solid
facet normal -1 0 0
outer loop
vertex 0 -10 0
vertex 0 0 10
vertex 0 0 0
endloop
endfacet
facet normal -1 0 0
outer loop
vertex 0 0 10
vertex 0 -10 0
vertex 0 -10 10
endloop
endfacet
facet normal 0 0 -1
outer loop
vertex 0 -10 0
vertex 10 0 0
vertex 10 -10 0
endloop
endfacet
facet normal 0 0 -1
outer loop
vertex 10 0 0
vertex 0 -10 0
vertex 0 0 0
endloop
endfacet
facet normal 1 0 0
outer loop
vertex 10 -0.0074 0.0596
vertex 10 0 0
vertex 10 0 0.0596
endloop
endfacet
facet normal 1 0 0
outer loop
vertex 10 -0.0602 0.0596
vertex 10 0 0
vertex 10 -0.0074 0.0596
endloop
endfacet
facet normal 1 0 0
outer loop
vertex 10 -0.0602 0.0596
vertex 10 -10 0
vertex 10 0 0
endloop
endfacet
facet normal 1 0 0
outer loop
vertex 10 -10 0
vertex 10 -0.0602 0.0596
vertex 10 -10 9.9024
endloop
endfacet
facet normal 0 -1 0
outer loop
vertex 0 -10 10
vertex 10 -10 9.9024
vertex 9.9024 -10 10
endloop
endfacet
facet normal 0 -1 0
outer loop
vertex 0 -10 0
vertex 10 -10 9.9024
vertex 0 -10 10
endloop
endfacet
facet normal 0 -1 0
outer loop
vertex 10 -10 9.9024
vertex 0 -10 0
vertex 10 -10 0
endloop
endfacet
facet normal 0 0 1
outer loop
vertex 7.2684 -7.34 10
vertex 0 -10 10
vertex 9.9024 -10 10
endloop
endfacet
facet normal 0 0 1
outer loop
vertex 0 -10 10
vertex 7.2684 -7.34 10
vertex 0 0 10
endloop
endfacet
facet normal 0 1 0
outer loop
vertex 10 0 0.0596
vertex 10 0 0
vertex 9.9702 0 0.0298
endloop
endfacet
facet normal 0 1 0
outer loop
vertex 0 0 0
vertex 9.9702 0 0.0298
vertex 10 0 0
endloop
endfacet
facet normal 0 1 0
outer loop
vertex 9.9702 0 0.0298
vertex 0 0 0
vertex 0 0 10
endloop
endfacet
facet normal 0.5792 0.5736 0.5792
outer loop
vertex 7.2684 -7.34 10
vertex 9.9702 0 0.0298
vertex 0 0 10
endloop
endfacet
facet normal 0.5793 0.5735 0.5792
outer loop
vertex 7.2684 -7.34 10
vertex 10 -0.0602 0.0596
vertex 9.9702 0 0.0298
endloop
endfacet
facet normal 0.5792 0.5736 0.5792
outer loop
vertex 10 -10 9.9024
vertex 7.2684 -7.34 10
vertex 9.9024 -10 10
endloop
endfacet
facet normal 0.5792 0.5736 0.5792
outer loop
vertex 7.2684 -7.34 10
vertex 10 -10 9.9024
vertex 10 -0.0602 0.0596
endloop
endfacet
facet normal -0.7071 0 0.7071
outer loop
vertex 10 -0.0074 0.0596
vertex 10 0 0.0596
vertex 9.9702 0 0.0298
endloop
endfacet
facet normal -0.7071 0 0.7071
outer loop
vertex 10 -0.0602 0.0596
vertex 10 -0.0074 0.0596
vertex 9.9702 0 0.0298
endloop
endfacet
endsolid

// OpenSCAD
translate([0, 0, 10])
  rotate([180, 0, 0])
    difference() {
      cube([10, 10, 10], center=false);

      mirror([0,0,1]){
        rotate([35, 45, 0]){
          color([1,0.8,0]) {
            cube([14.1, 14.1, 14.1], center=false);
          }
        }
      }
    }
  
